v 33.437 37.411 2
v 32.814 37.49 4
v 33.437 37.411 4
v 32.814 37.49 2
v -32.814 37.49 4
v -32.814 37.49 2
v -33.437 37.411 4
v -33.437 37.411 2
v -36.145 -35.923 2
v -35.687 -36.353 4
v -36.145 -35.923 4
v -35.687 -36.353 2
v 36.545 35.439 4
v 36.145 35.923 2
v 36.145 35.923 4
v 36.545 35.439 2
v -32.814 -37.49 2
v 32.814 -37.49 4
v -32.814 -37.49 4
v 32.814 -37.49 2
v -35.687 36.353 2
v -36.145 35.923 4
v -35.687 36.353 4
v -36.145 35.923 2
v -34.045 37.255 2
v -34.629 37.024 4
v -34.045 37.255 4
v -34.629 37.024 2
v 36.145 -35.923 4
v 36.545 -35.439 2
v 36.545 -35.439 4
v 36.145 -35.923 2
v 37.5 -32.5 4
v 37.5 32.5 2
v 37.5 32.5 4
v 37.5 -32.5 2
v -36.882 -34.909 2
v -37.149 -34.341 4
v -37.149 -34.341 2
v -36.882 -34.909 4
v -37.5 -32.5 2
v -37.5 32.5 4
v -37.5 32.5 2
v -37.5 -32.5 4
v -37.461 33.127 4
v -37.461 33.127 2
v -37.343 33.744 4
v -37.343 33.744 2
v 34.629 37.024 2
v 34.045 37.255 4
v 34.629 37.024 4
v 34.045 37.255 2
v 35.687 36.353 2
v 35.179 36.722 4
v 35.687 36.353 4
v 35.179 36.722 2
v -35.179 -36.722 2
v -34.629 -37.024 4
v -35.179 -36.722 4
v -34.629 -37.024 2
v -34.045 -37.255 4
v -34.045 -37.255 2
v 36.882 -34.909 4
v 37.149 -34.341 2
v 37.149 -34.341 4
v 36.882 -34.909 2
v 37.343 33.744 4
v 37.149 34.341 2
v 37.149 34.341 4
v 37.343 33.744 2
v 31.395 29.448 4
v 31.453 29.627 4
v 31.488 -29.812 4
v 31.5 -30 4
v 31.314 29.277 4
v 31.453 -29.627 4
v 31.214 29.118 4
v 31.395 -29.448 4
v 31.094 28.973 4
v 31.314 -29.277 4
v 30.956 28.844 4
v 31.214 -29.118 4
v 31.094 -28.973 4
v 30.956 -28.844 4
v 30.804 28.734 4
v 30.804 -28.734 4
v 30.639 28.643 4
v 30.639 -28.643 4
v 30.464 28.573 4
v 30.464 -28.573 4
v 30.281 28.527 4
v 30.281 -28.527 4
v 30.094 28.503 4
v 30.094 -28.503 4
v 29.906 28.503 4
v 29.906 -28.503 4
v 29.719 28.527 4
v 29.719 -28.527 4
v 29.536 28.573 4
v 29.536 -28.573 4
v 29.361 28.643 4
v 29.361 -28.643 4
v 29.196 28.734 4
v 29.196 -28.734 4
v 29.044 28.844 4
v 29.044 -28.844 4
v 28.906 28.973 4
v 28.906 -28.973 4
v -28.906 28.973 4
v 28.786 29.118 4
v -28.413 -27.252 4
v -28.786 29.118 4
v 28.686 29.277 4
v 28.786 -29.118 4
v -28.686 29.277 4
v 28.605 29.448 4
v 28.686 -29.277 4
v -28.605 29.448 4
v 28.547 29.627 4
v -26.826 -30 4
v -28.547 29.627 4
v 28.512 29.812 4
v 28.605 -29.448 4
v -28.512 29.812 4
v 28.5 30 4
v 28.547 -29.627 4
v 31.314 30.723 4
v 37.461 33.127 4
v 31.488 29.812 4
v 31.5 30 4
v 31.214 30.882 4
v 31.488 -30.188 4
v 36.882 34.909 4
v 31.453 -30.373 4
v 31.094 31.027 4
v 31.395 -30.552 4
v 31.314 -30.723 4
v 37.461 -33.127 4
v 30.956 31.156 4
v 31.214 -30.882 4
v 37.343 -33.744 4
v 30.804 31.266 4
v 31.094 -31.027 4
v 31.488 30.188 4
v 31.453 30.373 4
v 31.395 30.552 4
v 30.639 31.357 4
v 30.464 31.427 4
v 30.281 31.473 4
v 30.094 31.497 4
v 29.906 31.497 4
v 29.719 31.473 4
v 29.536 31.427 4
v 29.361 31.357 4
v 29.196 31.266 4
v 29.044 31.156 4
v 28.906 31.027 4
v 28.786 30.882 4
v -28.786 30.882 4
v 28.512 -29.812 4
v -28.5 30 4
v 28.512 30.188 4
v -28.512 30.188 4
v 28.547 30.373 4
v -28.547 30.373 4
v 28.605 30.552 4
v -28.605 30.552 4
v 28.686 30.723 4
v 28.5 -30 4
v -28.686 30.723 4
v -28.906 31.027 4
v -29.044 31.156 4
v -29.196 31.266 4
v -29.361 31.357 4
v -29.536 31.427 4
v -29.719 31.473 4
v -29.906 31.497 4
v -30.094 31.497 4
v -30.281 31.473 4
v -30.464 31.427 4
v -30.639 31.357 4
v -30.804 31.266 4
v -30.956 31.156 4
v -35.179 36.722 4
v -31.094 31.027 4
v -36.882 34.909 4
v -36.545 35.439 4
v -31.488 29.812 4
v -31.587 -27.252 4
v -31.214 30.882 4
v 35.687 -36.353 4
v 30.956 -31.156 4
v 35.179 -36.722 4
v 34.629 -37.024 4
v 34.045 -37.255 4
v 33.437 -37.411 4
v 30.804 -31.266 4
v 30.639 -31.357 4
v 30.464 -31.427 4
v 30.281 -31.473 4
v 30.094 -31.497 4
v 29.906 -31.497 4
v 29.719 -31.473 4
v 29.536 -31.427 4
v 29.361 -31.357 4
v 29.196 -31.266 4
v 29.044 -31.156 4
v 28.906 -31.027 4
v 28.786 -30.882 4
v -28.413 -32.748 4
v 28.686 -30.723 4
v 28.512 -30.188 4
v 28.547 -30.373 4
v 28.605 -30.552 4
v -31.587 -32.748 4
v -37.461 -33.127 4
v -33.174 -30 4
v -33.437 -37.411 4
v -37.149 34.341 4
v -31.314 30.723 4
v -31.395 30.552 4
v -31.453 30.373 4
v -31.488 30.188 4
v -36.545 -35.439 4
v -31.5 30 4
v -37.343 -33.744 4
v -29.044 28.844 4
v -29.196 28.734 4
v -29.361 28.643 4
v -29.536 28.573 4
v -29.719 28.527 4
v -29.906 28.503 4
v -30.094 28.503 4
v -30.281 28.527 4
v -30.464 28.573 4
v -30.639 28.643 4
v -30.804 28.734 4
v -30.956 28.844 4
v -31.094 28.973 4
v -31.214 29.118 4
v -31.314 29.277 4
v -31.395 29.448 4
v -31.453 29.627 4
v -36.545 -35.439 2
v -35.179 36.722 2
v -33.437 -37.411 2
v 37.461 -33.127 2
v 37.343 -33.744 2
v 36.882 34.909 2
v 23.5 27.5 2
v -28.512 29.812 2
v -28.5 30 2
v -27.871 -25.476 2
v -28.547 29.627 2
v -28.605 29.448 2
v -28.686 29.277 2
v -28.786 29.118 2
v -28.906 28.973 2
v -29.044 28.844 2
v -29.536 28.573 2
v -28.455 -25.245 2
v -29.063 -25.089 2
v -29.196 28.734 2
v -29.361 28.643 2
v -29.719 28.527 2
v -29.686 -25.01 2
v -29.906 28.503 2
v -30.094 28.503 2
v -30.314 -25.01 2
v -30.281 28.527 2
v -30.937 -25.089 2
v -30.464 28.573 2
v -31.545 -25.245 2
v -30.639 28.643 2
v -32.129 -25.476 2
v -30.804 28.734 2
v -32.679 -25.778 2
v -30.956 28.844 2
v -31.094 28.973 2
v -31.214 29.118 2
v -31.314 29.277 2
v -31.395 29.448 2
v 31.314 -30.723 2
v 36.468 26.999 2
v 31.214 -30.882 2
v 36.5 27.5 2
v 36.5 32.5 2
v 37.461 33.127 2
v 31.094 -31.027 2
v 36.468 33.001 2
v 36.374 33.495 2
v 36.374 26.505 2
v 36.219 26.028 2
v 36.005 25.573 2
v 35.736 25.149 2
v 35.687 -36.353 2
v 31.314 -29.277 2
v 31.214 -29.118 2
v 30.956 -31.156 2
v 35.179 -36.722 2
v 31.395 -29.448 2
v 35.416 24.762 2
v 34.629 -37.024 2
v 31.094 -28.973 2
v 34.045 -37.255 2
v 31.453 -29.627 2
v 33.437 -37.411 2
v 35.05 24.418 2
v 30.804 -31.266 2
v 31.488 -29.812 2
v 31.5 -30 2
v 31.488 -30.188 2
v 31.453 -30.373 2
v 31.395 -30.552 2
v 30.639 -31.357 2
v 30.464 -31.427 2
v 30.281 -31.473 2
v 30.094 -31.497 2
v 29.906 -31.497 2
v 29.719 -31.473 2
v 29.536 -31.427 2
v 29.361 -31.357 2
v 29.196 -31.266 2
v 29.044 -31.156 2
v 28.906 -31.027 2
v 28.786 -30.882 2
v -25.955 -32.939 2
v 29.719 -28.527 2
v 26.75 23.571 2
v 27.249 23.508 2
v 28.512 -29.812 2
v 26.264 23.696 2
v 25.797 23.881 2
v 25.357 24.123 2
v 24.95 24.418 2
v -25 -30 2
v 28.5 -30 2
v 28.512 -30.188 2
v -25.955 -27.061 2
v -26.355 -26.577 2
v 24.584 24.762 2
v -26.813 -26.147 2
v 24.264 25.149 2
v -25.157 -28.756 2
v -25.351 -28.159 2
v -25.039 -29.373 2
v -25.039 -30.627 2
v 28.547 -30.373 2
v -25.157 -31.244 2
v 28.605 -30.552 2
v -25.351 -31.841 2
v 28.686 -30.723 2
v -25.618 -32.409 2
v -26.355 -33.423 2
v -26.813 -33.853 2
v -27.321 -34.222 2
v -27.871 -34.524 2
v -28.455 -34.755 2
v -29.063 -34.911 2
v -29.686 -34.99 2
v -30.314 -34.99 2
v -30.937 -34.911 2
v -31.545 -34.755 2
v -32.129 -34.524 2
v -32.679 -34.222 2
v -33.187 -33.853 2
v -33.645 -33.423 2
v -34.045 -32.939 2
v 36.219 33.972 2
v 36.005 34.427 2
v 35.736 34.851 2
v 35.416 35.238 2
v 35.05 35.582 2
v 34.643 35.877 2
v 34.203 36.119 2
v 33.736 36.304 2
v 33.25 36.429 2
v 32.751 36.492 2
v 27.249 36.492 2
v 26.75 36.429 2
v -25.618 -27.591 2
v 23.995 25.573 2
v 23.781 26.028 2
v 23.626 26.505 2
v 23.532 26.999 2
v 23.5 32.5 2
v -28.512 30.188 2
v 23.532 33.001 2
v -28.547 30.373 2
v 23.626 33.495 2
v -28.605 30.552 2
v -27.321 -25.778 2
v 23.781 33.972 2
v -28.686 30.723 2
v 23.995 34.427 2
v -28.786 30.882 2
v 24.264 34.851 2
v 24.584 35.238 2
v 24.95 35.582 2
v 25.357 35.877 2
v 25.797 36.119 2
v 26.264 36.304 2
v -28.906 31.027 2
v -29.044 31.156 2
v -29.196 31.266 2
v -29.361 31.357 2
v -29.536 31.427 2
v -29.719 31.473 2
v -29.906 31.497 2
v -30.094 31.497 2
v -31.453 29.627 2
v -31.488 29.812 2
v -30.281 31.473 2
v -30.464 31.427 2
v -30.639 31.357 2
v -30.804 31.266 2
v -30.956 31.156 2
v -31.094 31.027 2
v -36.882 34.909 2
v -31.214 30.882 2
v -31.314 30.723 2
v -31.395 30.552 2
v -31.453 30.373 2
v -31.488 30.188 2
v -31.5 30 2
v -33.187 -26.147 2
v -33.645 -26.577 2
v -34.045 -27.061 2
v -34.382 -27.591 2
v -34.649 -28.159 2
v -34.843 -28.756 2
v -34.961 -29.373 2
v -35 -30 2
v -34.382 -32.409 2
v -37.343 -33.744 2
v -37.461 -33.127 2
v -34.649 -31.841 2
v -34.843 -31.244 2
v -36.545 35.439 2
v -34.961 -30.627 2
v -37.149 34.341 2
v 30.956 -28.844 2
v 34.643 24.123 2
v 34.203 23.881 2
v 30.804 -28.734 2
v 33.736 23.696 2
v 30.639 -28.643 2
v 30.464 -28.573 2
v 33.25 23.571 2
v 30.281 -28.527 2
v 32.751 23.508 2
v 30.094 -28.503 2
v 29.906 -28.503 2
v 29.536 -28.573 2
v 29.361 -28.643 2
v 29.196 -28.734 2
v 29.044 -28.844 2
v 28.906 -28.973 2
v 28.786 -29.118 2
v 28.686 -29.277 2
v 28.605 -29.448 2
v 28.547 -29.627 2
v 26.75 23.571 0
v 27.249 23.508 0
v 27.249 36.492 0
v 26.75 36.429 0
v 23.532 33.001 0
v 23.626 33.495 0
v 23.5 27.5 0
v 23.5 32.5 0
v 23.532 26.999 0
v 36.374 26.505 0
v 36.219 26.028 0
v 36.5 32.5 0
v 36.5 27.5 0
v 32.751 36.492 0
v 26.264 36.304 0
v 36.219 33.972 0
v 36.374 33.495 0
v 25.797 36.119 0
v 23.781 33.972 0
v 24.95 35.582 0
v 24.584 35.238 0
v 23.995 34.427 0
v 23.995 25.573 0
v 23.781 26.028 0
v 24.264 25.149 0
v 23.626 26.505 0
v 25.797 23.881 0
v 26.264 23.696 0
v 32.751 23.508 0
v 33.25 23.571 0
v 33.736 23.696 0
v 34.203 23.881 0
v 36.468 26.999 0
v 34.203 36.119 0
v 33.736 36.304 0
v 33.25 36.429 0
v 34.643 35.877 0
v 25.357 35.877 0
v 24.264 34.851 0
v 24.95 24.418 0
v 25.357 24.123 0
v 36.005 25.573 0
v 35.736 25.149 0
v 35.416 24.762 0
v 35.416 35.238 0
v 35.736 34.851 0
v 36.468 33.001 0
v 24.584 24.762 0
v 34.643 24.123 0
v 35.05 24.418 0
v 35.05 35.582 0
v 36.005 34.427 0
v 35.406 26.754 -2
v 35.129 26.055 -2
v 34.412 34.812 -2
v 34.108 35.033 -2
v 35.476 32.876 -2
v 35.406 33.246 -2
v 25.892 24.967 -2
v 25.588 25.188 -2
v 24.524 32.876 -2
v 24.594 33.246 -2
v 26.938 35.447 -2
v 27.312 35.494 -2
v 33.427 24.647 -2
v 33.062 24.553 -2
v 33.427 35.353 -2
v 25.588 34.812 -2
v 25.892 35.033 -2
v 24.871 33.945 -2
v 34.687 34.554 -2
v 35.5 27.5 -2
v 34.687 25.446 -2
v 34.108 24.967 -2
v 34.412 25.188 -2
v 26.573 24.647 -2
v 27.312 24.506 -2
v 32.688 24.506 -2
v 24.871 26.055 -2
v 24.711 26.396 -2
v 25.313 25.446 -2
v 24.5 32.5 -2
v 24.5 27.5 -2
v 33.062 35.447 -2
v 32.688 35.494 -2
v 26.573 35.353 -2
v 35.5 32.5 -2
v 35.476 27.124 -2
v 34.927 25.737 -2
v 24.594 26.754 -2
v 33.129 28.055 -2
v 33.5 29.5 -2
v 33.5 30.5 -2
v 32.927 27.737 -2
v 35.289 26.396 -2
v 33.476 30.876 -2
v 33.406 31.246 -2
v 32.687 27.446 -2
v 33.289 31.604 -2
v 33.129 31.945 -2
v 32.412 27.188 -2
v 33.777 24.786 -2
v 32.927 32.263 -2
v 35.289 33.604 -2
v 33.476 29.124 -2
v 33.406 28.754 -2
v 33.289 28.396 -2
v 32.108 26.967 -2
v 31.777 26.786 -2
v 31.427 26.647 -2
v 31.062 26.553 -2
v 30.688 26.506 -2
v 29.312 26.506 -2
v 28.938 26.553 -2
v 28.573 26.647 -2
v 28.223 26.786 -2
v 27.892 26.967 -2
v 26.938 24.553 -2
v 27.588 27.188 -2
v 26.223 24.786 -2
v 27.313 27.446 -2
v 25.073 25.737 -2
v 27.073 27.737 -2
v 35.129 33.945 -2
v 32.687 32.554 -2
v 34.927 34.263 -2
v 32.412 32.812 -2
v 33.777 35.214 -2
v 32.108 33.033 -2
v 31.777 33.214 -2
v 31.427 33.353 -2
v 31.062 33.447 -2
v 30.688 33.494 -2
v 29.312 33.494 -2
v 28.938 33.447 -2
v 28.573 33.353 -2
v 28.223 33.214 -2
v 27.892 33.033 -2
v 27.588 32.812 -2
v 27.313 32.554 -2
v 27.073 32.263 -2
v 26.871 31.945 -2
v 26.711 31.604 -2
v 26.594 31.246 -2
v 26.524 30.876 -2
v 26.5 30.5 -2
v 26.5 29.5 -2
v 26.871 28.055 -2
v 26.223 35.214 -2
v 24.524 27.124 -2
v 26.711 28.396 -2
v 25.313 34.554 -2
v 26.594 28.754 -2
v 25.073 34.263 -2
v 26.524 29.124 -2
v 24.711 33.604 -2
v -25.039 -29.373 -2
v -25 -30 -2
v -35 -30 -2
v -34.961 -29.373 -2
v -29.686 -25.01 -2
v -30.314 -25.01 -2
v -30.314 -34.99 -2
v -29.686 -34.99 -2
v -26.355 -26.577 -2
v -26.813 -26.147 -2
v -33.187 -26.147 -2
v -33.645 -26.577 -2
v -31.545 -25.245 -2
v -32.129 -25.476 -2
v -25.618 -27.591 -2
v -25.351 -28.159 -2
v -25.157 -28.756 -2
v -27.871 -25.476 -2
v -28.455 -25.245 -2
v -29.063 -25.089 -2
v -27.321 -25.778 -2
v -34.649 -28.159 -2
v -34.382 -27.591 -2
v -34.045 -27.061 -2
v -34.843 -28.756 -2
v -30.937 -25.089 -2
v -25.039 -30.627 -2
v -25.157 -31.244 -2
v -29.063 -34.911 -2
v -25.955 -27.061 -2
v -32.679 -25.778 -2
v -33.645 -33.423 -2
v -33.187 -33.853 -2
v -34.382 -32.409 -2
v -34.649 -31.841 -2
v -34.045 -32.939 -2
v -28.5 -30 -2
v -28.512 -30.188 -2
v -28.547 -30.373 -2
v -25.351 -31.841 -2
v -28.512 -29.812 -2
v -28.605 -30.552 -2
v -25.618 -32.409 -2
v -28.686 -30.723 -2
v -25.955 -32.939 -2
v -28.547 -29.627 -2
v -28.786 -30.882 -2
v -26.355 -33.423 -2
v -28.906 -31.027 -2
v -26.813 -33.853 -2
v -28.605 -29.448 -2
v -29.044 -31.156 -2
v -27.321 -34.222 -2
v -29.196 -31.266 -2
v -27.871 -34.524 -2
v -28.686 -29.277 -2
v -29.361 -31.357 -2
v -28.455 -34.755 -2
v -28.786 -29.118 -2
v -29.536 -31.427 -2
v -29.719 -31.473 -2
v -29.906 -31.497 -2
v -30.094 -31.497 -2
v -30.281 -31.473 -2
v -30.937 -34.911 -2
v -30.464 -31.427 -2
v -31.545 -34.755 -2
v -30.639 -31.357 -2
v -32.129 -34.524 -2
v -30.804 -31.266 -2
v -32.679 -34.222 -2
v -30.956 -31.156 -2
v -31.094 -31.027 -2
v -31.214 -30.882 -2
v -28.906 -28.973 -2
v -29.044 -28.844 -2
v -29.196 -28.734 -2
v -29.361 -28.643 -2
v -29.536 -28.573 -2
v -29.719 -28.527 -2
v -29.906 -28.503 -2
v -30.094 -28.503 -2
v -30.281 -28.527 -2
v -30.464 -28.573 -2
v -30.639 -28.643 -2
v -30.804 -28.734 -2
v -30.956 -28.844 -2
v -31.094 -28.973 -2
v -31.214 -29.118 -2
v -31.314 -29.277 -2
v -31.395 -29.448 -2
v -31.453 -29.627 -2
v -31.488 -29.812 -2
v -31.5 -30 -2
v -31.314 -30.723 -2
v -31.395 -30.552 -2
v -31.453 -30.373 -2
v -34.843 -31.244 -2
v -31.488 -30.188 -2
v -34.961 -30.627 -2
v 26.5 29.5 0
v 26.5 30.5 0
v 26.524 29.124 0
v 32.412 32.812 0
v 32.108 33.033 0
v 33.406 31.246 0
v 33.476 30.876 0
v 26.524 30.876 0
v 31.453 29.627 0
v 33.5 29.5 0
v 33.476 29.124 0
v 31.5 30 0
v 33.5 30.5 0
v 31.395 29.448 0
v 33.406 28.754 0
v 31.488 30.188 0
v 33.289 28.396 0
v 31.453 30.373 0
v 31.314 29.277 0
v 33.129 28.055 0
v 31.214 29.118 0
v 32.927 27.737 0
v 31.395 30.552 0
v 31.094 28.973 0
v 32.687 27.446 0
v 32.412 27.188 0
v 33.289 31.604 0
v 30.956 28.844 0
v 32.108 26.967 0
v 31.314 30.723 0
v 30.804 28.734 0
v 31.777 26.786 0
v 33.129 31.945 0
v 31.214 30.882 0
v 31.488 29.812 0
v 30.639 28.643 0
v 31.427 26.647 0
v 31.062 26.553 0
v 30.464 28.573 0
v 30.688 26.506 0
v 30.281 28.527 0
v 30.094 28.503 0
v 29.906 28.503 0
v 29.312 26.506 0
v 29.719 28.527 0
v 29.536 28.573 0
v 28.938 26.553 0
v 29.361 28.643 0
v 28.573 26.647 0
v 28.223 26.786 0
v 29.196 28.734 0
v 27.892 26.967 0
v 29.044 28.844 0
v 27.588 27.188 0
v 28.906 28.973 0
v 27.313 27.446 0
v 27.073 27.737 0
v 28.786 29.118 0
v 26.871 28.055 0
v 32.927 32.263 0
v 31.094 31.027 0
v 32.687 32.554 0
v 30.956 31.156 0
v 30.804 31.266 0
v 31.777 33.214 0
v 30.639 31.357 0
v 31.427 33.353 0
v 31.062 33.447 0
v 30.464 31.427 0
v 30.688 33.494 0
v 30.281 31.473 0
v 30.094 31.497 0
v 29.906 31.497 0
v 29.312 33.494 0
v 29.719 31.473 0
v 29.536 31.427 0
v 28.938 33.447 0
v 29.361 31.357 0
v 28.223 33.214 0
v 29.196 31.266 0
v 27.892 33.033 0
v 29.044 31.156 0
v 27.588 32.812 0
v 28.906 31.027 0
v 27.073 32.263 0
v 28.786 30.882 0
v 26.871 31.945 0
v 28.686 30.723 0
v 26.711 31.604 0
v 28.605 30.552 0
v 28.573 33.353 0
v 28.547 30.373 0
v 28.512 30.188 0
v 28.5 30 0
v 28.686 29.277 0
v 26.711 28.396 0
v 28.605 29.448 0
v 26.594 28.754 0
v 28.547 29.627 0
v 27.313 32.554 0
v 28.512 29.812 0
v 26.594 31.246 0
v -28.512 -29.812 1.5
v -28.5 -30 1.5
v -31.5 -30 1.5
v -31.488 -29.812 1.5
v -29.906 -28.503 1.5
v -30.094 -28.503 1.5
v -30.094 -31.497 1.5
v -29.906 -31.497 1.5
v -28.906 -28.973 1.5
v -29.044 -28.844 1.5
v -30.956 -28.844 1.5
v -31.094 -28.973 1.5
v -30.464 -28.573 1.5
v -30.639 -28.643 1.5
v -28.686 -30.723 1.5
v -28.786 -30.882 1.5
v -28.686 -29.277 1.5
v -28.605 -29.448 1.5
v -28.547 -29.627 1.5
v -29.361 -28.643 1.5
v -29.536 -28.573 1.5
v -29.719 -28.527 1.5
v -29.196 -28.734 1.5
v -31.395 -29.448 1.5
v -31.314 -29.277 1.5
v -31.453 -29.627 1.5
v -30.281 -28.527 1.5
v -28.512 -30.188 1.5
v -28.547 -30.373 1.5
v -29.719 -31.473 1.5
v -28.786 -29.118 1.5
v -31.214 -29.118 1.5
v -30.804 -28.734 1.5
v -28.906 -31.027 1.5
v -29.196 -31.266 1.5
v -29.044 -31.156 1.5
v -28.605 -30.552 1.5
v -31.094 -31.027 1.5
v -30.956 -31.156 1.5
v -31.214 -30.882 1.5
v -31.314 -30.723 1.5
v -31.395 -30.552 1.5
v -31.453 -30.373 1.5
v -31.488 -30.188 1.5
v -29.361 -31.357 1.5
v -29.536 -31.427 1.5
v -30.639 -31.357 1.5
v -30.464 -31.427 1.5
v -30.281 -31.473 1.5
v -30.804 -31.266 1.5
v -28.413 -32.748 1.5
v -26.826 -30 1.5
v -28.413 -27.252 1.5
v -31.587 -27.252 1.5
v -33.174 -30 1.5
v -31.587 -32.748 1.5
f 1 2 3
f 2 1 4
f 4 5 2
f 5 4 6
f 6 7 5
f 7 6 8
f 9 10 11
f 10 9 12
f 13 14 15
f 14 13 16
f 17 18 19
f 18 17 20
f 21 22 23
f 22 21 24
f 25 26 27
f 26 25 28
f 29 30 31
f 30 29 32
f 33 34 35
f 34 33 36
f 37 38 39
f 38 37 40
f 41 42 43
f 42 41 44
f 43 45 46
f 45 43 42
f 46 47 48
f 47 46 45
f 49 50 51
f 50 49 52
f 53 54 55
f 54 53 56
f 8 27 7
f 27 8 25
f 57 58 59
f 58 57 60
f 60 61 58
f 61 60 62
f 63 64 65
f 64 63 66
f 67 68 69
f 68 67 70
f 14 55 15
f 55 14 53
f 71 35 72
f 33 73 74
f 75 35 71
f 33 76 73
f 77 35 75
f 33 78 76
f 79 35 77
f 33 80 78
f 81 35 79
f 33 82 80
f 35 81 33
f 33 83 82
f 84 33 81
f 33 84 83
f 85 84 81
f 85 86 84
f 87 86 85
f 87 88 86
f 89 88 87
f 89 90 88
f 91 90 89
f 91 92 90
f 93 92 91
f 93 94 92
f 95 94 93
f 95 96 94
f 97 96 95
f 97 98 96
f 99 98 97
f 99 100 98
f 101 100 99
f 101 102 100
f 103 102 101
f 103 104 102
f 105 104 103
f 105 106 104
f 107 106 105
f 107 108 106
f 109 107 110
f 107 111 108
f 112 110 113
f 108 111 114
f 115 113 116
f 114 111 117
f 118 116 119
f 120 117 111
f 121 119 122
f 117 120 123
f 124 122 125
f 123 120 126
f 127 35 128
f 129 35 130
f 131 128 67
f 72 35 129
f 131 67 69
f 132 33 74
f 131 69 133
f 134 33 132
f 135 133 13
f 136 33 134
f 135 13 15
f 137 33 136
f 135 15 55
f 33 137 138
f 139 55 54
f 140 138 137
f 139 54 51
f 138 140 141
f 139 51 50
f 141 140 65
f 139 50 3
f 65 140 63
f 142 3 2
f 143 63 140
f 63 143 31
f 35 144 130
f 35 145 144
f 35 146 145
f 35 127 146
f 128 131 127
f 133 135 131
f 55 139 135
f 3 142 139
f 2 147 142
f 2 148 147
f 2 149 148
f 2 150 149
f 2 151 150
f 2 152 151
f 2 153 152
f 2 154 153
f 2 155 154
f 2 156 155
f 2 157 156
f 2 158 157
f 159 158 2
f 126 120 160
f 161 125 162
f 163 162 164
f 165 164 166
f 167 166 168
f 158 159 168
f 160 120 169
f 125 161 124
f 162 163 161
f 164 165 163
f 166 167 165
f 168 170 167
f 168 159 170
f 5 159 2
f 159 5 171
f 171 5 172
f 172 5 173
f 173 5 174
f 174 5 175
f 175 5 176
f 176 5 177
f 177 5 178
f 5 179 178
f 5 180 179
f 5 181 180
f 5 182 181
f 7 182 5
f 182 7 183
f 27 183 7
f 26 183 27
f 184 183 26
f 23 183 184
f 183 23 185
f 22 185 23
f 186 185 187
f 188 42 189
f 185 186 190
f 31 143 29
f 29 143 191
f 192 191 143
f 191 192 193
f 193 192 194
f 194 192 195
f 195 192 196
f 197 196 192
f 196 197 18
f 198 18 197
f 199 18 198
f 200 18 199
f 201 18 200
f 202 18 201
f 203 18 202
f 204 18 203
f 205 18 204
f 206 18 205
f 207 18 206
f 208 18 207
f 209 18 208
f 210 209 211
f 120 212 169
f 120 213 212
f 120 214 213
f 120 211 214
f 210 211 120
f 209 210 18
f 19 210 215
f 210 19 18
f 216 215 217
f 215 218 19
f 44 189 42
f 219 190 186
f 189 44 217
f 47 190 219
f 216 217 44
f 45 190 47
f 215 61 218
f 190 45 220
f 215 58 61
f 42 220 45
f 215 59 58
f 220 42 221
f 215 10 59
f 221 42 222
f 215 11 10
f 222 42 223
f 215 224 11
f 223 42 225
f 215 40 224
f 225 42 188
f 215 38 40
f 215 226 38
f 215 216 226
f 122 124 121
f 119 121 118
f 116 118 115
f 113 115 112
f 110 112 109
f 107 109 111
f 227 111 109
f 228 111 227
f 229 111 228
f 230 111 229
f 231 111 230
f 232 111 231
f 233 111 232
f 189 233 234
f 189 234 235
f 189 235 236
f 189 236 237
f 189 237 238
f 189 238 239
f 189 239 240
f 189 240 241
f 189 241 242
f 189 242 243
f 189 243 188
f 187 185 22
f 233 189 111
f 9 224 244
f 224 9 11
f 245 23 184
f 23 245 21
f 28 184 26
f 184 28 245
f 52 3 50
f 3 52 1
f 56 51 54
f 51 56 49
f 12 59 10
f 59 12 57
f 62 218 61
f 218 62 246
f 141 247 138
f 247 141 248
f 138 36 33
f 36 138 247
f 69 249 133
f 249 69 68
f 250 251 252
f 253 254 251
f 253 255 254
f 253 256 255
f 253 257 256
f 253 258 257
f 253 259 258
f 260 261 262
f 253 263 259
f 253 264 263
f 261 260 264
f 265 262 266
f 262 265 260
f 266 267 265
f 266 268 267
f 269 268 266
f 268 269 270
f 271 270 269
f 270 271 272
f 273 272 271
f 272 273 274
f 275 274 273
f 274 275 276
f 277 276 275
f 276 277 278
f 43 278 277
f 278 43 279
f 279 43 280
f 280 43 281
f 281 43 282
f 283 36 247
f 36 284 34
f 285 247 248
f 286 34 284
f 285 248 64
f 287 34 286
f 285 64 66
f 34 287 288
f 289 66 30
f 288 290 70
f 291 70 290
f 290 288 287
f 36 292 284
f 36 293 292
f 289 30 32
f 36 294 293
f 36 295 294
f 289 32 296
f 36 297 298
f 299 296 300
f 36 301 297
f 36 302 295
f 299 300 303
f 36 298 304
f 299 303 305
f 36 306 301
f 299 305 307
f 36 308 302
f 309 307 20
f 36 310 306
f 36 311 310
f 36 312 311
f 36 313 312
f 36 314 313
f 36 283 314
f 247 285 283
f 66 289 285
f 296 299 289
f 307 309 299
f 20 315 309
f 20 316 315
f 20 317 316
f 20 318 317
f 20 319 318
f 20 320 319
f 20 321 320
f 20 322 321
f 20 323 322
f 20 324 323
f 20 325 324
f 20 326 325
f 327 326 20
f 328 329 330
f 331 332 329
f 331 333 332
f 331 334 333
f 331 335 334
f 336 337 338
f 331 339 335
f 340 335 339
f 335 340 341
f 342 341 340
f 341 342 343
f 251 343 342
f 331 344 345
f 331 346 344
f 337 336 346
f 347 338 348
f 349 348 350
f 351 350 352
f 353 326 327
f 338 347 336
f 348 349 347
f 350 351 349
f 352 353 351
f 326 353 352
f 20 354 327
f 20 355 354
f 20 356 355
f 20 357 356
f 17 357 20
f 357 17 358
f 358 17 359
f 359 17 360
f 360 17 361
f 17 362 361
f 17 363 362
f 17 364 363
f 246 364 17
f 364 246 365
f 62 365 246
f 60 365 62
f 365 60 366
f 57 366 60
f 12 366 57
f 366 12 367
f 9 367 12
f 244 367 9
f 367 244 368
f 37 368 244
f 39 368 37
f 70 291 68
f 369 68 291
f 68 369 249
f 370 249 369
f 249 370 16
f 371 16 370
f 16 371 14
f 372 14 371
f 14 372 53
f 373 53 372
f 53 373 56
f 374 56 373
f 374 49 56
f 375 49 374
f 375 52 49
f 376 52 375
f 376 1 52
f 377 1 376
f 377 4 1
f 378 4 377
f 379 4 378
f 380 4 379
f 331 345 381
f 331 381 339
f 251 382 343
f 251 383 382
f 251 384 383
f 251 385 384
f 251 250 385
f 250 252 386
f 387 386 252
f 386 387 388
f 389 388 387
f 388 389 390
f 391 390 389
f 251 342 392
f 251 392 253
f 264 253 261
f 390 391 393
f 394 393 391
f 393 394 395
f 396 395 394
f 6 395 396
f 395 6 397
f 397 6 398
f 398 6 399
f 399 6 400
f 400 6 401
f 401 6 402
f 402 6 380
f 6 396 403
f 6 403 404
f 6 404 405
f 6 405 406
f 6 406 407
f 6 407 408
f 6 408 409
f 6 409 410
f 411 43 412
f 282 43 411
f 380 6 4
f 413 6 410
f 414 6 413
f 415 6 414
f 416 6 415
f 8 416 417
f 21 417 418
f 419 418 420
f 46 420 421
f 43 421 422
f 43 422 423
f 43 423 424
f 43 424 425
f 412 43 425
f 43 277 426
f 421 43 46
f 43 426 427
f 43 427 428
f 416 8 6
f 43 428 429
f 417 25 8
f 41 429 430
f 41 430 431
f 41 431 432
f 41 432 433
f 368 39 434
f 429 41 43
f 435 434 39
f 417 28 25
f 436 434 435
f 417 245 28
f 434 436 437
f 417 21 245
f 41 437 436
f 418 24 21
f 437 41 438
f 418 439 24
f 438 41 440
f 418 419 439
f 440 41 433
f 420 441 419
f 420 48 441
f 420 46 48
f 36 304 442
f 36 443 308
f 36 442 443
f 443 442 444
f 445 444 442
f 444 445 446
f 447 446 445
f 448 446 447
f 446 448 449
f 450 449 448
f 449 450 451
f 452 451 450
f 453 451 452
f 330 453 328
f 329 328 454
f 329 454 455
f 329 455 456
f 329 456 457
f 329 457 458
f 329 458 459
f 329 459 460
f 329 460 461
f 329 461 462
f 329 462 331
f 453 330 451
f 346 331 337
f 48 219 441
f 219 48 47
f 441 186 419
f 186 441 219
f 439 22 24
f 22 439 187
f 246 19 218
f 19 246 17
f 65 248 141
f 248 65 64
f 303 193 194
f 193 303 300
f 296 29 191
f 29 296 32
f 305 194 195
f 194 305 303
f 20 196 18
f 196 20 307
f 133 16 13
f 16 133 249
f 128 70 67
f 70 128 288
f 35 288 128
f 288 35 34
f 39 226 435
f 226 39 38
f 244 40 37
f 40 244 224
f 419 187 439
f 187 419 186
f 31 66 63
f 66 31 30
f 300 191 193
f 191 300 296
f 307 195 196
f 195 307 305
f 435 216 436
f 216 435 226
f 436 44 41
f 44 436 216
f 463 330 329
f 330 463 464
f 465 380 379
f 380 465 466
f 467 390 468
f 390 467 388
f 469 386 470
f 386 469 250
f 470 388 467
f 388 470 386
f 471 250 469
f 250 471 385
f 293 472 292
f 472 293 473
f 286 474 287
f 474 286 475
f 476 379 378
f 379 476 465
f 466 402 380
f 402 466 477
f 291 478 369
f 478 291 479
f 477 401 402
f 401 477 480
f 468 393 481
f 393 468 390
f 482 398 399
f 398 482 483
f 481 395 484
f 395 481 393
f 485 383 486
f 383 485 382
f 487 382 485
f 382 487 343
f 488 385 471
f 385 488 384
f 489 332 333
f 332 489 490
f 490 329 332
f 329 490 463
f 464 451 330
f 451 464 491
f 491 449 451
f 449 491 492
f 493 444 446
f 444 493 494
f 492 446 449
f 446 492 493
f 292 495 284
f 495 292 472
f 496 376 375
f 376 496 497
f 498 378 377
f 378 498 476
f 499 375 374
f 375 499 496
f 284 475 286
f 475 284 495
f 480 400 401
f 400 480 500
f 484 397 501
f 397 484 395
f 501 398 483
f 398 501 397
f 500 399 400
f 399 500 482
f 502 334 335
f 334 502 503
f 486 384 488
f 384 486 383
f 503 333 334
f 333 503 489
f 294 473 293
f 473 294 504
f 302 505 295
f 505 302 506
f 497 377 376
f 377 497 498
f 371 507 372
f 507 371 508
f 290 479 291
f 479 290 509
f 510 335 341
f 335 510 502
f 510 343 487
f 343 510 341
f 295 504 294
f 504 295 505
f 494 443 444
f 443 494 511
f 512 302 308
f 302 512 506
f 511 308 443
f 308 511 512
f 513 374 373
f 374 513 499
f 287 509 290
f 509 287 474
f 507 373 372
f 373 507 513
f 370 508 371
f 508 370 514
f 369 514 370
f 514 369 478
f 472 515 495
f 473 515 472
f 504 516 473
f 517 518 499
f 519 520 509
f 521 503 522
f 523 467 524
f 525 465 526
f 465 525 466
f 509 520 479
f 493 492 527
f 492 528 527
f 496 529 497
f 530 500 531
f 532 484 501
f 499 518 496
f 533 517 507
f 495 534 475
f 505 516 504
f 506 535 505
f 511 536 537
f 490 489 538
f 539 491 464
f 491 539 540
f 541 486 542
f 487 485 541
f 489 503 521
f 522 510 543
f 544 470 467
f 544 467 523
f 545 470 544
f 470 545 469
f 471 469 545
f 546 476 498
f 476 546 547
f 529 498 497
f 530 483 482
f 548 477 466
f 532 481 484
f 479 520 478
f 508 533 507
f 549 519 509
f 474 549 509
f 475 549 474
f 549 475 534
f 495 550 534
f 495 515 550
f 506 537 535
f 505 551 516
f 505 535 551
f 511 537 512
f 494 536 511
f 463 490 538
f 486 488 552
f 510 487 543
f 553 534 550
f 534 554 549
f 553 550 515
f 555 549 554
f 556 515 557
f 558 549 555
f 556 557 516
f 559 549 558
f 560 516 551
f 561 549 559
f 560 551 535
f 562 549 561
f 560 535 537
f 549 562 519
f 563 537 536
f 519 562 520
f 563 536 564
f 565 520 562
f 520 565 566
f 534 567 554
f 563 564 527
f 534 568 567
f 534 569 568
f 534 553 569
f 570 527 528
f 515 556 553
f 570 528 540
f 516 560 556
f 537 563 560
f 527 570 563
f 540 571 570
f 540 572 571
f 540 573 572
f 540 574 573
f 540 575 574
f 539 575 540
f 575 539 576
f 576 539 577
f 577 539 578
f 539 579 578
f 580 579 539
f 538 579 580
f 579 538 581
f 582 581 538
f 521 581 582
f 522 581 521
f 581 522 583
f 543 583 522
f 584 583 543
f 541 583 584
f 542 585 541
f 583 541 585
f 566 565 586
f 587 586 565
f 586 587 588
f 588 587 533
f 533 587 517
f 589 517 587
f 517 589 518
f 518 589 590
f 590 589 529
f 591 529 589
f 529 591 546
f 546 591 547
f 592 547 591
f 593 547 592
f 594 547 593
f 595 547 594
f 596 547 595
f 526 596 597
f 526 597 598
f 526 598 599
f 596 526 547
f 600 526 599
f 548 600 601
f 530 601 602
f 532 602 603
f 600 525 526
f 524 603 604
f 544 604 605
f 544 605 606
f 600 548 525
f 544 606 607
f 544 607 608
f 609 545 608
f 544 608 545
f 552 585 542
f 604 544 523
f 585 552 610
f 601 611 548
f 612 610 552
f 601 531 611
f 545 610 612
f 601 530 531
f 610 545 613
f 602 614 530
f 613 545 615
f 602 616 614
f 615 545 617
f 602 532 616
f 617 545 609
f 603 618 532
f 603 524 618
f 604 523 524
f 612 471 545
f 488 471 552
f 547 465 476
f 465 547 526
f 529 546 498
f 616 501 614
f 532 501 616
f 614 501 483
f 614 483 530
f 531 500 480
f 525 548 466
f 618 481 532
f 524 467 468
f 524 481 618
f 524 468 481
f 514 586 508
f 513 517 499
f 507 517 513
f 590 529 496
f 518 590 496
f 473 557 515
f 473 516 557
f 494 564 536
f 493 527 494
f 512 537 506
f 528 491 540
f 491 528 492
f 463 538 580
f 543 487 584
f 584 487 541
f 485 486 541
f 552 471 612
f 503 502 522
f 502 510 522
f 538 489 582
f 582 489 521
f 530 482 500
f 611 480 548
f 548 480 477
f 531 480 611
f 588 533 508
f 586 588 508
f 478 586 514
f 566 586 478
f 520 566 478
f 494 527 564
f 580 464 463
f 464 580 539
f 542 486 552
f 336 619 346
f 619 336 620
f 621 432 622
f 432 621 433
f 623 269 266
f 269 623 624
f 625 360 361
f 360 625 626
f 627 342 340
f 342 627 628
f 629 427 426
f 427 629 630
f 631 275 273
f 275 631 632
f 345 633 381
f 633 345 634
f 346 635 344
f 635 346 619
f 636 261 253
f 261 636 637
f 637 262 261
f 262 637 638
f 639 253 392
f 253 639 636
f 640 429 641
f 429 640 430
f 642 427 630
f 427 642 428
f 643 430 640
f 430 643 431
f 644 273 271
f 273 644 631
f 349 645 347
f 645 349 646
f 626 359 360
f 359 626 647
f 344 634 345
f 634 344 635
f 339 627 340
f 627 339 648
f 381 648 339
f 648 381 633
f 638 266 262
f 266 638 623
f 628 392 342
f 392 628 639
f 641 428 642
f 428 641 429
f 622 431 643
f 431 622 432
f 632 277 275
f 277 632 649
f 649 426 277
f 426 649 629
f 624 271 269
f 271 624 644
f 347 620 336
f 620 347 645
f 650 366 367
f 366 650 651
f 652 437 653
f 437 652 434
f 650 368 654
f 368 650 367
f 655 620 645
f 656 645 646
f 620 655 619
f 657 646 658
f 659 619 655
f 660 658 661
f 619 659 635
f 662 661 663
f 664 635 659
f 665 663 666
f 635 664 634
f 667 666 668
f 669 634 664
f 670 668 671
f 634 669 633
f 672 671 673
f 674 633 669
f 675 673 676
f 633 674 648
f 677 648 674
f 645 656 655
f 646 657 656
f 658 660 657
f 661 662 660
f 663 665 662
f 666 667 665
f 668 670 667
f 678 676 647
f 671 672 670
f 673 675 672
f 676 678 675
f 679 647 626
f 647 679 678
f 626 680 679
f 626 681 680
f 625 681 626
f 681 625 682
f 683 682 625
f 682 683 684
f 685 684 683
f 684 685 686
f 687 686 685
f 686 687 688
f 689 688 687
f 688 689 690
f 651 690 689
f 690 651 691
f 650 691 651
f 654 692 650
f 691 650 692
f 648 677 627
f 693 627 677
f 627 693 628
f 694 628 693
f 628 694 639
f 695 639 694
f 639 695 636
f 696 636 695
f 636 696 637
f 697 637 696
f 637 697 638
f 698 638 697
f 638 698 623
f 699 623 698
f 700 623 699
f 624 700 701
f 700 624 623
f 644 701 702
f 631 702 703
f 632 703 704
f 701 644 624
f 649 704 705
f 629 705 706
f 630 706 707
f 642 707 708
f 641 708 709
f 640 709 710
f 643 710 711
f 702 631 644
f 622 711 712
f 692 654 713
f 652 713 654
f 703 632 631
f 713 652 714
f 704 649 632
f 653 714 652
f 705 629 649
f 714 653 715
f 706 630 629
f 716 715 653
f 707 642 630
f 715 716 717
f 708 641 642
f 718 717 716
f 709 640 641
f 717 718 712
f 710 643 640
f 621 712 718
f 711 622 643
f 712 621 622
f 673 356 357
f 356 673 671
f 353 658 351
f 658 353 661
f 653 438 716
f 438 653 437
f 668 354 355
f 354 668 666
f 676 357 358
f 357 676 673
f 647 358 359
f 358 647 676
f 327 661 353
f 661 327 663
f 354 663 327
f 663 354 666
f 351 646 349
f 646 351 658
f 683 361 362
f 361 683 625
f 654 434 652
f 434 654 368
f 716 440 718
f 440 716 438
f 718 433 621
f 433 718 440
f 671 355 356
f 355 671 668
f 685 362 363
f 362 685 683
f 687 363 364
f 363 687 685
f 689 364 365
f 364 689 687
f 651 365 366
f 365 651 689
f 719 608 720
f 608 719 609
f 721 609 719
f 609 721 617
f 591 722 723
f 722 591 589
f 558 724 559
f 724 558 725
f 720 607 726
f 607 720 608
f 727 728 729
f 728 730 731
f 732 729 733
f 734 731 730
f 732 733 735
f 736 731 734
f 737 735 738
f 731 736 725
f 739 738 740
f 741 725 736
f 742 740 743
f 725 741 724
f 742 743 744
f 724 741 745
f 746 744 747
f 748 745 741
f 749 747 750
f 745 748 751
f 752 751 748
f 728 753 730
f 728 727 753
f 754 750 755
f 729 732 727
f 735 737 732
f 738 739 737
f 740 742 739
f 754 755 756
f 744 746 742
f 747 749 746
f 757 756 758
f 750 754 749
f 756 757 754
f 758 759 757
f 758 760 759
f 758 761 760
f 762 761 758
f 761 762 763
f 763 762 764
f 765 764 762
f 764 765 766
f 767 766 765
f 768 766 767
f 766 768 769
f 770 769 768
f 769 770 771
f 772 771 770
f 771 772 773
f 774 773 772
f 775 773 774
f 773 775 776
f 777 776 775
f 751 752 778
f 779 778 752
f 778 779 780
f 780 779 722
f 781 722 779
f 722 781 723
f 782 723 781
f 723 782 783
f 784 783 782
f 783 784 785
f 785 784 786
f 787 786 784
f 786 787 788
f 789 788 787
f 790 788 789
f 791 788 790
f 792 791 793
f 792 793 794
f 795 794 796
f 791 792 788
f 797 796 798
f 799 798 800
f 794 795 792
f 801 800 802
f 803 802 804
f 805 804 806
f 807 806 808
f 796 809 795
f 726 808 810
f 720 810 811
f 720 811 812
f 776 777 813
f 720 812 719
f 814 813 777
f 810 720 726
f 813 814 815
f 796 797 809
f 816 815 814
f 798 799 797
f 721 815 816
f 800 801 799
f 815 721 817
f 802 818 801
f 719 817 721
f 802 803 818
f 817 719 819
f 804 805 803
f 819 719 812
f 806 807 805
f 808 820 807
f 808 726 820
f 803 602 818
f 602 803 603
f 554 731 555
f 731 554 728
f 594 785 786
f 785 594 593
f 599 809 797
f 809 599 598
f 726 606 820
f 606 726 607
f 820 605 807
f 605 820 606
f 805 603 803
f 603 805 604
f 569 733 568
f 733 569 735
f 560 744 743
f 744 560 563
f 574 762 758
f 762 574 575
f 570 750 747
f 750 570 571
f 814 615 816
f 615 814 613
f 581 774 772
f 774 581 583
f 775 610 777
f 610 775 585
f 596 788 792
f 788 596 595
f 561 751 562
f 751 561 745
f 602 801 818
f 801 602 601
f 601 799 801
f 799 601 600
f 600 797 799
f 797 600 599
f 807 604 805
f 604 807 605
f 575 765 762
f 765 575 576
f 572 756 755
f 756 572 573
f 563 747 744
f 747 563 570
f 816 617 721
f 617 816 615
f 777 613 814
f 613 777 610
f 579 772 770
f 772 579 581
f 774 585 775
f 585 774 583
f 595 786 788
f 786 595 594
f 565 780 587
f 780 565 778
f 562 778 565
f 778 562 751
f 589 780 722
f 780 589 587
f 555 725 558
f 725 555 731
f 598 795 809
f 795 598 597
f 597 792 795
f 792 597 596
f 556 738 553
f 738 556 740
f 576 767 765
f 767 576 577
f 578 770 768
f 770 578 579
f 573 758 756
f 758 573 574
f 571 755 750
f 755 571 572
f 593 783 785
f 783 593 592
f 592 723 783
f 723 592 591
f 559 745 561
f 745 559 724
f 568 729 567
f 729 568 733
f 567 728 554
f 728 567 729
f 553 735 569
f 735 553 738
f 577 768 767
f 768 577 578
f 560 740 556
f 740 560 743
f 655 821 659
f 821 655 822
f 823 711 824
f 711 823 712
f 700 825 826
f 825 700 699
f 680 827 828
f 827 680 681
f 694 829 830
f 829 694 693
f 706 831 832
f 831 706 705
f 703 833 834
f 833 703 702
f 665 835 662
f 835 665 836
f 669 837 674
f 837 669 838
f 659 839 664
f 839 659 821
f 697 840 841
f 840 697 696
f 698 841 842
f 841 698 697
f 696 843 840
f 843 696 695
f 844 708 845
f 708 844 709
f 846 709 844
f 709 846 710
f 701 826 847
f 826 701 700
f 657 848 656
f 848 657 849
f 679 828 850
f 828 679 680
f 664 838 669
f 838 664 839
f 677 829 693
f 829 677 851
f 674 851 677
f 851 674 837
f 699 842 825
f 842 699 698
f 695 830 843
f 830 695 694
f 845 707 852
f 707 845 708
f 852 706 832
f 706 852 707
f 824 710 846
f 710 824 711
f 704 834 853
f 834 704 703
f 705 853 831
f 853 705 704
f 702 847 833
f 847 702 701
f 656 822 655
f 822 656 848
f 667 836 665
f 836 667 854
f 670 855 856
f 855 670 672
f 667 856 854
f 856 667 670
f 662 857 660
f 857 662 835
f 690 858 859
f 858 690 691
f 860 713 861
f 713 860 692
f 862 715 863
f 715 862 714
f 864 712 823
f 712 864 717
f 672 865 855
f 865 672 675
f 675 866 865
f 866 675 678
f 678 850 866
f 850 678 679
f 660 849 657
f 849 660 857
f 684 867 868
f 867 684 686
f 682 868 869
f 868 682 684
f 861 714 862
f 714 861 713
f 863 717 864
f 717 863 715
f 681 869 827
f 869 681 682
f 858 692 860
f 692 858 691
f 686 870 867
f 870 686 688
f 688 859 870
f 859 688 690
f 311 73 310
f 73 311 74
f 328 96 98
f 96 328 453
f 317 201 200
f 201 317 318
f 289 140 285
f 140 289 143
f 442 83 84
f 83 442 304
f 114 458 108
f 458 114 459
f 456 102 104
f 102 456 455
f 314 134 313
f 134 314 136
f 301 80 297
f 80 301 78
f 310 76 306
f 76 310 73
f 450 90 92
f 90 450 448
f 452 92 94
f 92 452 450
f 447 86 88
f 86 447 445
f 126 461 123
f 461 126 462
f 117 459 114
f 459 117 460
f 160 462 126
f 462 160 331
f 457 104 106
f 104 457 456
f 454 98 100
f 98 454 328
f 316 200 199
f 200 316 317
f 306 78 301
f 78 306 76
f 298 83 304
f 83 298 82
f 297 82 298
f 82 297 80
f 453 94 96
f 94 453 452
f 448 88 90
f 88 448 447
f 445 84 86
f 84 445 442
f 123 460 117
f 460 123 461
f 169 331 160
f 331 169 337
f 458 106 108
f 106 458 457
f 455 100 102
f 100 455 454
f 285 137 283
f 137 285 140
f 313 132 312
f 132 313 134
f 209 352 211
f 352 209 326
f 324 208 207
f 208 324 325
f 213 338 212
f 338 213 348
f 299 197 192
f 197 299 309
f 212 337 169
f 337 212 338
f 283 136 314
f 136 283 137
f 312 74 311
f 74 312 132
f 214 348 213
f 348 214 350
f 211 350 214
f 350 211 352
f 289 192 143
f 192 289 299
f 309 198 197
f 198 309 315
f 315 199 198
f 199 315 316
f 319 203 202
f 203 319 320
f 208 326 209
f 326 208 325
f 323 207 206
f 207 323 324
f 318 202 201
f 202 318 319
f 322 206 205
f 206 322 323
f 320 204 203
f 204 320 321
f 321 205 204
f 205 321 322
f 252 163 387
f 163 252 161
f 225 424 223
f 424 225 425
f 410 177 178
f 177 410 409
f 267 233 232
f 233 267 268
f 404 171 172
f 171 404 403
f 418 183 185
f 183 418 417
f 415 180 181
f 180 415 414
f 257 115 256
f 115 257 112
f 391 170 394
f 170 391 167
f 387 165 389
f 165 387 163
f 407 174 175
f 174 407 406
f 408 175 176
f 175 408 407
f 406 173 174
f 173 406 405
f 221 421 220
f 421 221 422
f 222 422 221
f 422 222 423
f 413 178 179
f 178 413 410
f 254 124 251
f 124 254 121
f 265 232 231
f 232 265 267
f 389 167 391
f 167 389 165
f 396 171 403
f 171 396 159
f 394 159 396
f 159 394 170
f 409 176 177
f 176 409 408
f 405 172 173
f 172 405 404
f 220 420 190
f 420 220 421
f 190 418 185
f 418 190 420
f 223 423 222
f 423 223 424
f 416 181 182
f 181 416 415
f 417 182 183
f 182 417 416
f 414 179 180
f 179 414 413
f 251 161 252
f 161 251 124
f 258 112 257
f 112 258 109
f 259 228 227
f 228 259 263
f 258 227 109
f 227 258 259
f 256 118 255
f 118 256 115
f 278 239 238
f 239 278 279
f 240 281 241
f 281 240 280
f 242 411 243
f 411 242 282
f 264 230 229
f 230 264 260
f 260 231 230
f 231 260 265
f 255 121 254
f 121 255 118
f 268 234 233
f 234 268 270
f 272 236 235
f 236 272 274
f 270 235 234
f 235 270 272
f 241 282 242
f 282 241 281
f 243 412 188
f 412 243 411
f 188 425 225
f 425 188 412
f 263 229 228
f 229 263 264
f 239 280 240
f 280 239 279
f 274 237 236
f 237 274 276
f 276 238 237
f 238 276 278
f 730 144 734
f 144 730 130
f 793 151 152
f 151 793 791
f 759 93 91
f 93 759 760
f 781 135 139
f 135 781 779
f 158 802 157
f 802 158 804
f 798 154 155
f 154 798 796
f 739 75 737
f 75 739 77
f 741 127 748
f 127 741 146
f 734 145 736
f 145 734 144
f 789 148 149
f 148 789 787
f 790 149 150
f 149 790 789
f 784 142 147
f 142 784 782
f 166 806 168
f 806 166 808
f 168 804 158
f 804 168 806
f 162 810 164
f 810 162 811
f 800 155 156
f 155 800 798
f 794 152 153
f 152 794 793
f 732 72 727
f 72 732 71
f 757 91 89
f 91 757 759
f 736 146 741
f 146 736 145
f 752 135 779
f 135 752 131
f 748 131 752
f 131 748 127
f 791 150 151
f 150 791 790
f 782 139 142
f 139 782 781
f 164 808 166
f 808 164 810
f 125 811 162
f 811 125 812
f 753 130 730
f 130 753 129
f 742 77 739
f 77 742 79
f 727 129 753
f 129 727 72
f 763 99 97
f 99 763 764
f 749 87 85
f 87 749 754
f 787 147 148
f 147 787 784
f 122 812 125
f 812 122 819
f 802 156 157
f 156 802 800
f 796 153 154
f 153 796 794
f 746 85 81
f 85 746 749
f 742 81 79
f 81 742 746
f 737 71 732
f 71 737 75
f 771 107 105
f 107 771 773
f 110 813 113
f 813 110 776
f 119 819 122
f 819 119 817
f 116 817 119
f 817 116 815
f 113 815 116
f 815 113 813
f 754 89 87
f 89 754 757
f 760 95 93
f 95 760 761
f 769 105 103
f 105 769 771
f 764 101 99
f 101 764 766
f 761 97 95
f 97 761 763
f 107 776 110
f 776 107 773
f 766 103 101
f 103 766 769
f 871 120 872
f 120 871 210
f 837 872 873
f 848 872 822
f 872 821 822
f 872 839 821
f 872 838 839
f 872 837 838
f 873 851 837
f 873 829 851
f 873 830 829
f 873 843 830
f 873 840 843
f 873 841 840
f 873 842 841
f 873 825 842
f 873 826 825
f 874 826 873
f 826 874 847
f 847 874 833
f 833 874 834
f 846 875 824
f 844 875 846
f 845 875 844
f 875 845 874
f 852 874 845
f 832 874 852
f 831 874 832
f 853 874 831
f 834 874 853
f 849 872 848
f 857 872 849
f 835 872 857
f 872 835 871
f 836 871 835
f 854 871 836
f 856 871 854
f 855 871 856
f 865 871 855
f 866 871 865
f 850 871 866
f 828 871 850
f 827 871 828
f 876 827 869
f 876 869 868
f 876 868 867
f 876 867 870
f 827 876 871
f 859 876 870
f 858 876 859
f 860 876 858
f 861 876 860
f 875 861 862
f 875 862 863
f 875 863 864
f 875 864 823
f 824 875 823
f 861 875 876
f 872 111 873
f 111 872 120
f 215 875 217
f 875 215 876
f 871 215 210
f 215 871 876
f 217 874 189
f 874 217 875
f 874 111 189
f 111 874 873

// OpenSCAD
$fn = 50;


difference() {
	union() {
		translate(v = [0, 0, 2]) {
			rotate(a = [0, 0, 0]) {
				hull() {
					translate(v = [-32.5000000000, 32.5000000000, 0]) {
						rotate(a = [0, 0, 0]) {
							translate(v = [0, 0, 0]) {
								rotate(a = [0, 0, 0]) {
									cylinder(h = 2, r = 5);
								}
							}
						}
					}
					translate(v = [32.5000000000, 32.5000000000, 0]) {
						rotate(a = [0, 0, 0]) {
							translate(v = [0, 0, 0]) {
								rotate(a = [0, 0, 0]) {
									cylinder(h = 2, r = 5);
								}
							}
						}
					}
					translate(v = [-32.5000000000, -32.5000000000, 0]) {
						rotate(a = [0, 0, 0]) {
							translate(v = [0, 0, 0]) {
								rotate(a = [0, 0, 0]) {
									cylinder(h = 2, r = 5);
								}
							}
						}
					}
					translate(v = [32.5000000000, -32.5000000000, 0]) {
						rotate(a = [0, 0, 0]) {
							translate(v = [0, 0, 0]) {
								rotate(a = [0, 0, 0]) {
									cylinder(h = 2, r = 5);
								}
							}
						}
					}
				}
			}
		}
		translate(v = [30.0000000000, 30.0000000000, 0]) {
			rotate(a = [0, 0, 0]) {
				hull() {
					translate(v = [-2.5000000000, 2.5000000000, 0]) {
						rotate(a = [0, 0, 0]) {
							cylinder(h = 2, r1 = 4.0000000000, r2 = 4.0000000000);
						}
					}
					translate(v = [2.5000000000, 2.5000000000, 0]) {
						rotate(a = [0, 0, 0]) {
							cylinder(h = 2, r1 = 4.0000000000, r2 = 4.0000000000);
						}
					}
					translate(v = [-2.5000000000, -2.5000000000, 0]) {
						rotate(a = [0, 0, 0]) {
							cylinder(h = 2, r1 = 4.0000000000, r2 = 4.0000000000);
						}
					}
					translate(v = [2.5000000000, -2.5000000000, 0]) {
						rotate(a = [0, 0, 0]) {
							cylinder(h = 2, r1 = 4.0000000000, r2 = 4.0000000000);
						}
					}
				}
			}
		}
		translate(v = [30.0000000000, 30.0000000000, -2]) {
			rotate(a = [0, 180, 0]) {
				hull() {
					translate(v = [-2.5000000000, 2.5000000000, 0]) {
						rotate(a = [0, 180, 0]) {
							cylinder(h = 2, r1 = 3.0000000000, r2 = 4.0000000000);
						}
					}
					translate(v = [2.5000000000, 2.5000000000, 0]) {
						rotate(a = [0, 180, 0]) {
							cylinder(h = 2, r1 = 3.0000000000, r2 = 4.0000000000);
						}
					}
					translate(v = [-2.5000000000, -2.5000000000, 0]) {
						rotate(a = [0, 180, 0]) {
							cylinder(h = 2, r1 = 3.0000000000, r2 = 4.0000000000);
						}
					}
					translate(v = [2.5000000000, -2.5000000000, 0]) {
						rotate(a = [0, 180, 0]) {
							cylinder(h = 2, r1 = 3.0000000000, r2 = 4.0000000000);
						}
					}
				}
			}
		}
		translate(v = [-30.0000000000, -30.0000000000, -2.0000000000]) {
			rotate(a = [0, 0, 0]) {
				cylinder(h = 4, r = 5);
			}
		}
	}
	union() {
		translate(v = [30.0000000000, 30.0000000000, -2]) {
			rotate(a = [0, 0, 0]) {
				hull() {
					translate(v = [-0.5000000000, 0.5000000000, 0]) {
						rotate(a = [0, 0, 0]) {
							translate(v = [0, 0, 0]) {
								rotate(a = [0, 0, 0]) {
									cylinder(h = 2, r = 3.0000000000);
								}
							}
						}
					}
					translate(v = [0.5000000000, 0.5000000000, 0]) {
						rotate(a = [0, 0, 0]) {
							translate(v = [0, 0, 0]) {
								rotate(a = [0, 0, 0]) {
									cylinder(h = 2, r = 3.0000000000);
								}
							}
						}
					}
					translate(v = [-0.5000000000, -0.5000000000, 0]) {
						rotate(a = [0, 0, 0]) {
							translate(v = [0, 0, 0]) {
								rotate(a = [0, 0, 0]) {
									cylinder(h = 2, r = 3.0000000000);
								}
							}
						}
					}
					translate(v = [0.5000000000, -0.5000000000, 0]) {
						rotate(a = [0, 0, 0]) {
							translate(v = [0, 0, 0]) {
								rotate(a = [0, 0, 0]) {
									cylinder(h = 2, r = 3.0000000000);
								}
							}
						}
					}
				}
			}
		}
		translate(v = [-30.0000000000, -30.0000000000, -50]) {
			rotate(a = [0, 0, 0]) {
				cylinder(h = 100, r = 1.5000000000);
			}
		}
		translate(v = [30.0000000000, -30.0000000000, -50]) {
			rotate(a = [0, 0, 0]) {
				cylinder(h = 100, r = 1.5000000000);
			}
		}
		translate(v = [-30.0000000000, 30.0000000000, -50]) {
			rotate(a = [0, 0, 0]) {
				cylinder(h = 100, r = 1.5000000000);
			}
		}
		translate(v = [30.0000000000, 30.0000000000, -50]) {
			rotate(a = [0, 0, 0]) {
				cylinder(h = 100, r = 1.5000000000);
			}
		}
		translate(v = [-30.0000000000, -30.0000000000, 1.5000000000]) {
			rotate(a = [0, 0, 0]) {
				#translate(v = [0, 0, 0]) {
					rotate(a = [0, 0, 0]) {
						linear_extrude(height = 2.5000000000) {
							polygon(points = [[3.1735000000, 0.0000000000], [1.5867500000, 2.7483316189], [-1.5867500000, 2.7483316189], [-3.1735000000, 0.0000000000], [-1.5867500000, -2.7483316189], [1.5867500000, -2.7483316189]]);
						}
					}
				}
			}
		}
	}
}
